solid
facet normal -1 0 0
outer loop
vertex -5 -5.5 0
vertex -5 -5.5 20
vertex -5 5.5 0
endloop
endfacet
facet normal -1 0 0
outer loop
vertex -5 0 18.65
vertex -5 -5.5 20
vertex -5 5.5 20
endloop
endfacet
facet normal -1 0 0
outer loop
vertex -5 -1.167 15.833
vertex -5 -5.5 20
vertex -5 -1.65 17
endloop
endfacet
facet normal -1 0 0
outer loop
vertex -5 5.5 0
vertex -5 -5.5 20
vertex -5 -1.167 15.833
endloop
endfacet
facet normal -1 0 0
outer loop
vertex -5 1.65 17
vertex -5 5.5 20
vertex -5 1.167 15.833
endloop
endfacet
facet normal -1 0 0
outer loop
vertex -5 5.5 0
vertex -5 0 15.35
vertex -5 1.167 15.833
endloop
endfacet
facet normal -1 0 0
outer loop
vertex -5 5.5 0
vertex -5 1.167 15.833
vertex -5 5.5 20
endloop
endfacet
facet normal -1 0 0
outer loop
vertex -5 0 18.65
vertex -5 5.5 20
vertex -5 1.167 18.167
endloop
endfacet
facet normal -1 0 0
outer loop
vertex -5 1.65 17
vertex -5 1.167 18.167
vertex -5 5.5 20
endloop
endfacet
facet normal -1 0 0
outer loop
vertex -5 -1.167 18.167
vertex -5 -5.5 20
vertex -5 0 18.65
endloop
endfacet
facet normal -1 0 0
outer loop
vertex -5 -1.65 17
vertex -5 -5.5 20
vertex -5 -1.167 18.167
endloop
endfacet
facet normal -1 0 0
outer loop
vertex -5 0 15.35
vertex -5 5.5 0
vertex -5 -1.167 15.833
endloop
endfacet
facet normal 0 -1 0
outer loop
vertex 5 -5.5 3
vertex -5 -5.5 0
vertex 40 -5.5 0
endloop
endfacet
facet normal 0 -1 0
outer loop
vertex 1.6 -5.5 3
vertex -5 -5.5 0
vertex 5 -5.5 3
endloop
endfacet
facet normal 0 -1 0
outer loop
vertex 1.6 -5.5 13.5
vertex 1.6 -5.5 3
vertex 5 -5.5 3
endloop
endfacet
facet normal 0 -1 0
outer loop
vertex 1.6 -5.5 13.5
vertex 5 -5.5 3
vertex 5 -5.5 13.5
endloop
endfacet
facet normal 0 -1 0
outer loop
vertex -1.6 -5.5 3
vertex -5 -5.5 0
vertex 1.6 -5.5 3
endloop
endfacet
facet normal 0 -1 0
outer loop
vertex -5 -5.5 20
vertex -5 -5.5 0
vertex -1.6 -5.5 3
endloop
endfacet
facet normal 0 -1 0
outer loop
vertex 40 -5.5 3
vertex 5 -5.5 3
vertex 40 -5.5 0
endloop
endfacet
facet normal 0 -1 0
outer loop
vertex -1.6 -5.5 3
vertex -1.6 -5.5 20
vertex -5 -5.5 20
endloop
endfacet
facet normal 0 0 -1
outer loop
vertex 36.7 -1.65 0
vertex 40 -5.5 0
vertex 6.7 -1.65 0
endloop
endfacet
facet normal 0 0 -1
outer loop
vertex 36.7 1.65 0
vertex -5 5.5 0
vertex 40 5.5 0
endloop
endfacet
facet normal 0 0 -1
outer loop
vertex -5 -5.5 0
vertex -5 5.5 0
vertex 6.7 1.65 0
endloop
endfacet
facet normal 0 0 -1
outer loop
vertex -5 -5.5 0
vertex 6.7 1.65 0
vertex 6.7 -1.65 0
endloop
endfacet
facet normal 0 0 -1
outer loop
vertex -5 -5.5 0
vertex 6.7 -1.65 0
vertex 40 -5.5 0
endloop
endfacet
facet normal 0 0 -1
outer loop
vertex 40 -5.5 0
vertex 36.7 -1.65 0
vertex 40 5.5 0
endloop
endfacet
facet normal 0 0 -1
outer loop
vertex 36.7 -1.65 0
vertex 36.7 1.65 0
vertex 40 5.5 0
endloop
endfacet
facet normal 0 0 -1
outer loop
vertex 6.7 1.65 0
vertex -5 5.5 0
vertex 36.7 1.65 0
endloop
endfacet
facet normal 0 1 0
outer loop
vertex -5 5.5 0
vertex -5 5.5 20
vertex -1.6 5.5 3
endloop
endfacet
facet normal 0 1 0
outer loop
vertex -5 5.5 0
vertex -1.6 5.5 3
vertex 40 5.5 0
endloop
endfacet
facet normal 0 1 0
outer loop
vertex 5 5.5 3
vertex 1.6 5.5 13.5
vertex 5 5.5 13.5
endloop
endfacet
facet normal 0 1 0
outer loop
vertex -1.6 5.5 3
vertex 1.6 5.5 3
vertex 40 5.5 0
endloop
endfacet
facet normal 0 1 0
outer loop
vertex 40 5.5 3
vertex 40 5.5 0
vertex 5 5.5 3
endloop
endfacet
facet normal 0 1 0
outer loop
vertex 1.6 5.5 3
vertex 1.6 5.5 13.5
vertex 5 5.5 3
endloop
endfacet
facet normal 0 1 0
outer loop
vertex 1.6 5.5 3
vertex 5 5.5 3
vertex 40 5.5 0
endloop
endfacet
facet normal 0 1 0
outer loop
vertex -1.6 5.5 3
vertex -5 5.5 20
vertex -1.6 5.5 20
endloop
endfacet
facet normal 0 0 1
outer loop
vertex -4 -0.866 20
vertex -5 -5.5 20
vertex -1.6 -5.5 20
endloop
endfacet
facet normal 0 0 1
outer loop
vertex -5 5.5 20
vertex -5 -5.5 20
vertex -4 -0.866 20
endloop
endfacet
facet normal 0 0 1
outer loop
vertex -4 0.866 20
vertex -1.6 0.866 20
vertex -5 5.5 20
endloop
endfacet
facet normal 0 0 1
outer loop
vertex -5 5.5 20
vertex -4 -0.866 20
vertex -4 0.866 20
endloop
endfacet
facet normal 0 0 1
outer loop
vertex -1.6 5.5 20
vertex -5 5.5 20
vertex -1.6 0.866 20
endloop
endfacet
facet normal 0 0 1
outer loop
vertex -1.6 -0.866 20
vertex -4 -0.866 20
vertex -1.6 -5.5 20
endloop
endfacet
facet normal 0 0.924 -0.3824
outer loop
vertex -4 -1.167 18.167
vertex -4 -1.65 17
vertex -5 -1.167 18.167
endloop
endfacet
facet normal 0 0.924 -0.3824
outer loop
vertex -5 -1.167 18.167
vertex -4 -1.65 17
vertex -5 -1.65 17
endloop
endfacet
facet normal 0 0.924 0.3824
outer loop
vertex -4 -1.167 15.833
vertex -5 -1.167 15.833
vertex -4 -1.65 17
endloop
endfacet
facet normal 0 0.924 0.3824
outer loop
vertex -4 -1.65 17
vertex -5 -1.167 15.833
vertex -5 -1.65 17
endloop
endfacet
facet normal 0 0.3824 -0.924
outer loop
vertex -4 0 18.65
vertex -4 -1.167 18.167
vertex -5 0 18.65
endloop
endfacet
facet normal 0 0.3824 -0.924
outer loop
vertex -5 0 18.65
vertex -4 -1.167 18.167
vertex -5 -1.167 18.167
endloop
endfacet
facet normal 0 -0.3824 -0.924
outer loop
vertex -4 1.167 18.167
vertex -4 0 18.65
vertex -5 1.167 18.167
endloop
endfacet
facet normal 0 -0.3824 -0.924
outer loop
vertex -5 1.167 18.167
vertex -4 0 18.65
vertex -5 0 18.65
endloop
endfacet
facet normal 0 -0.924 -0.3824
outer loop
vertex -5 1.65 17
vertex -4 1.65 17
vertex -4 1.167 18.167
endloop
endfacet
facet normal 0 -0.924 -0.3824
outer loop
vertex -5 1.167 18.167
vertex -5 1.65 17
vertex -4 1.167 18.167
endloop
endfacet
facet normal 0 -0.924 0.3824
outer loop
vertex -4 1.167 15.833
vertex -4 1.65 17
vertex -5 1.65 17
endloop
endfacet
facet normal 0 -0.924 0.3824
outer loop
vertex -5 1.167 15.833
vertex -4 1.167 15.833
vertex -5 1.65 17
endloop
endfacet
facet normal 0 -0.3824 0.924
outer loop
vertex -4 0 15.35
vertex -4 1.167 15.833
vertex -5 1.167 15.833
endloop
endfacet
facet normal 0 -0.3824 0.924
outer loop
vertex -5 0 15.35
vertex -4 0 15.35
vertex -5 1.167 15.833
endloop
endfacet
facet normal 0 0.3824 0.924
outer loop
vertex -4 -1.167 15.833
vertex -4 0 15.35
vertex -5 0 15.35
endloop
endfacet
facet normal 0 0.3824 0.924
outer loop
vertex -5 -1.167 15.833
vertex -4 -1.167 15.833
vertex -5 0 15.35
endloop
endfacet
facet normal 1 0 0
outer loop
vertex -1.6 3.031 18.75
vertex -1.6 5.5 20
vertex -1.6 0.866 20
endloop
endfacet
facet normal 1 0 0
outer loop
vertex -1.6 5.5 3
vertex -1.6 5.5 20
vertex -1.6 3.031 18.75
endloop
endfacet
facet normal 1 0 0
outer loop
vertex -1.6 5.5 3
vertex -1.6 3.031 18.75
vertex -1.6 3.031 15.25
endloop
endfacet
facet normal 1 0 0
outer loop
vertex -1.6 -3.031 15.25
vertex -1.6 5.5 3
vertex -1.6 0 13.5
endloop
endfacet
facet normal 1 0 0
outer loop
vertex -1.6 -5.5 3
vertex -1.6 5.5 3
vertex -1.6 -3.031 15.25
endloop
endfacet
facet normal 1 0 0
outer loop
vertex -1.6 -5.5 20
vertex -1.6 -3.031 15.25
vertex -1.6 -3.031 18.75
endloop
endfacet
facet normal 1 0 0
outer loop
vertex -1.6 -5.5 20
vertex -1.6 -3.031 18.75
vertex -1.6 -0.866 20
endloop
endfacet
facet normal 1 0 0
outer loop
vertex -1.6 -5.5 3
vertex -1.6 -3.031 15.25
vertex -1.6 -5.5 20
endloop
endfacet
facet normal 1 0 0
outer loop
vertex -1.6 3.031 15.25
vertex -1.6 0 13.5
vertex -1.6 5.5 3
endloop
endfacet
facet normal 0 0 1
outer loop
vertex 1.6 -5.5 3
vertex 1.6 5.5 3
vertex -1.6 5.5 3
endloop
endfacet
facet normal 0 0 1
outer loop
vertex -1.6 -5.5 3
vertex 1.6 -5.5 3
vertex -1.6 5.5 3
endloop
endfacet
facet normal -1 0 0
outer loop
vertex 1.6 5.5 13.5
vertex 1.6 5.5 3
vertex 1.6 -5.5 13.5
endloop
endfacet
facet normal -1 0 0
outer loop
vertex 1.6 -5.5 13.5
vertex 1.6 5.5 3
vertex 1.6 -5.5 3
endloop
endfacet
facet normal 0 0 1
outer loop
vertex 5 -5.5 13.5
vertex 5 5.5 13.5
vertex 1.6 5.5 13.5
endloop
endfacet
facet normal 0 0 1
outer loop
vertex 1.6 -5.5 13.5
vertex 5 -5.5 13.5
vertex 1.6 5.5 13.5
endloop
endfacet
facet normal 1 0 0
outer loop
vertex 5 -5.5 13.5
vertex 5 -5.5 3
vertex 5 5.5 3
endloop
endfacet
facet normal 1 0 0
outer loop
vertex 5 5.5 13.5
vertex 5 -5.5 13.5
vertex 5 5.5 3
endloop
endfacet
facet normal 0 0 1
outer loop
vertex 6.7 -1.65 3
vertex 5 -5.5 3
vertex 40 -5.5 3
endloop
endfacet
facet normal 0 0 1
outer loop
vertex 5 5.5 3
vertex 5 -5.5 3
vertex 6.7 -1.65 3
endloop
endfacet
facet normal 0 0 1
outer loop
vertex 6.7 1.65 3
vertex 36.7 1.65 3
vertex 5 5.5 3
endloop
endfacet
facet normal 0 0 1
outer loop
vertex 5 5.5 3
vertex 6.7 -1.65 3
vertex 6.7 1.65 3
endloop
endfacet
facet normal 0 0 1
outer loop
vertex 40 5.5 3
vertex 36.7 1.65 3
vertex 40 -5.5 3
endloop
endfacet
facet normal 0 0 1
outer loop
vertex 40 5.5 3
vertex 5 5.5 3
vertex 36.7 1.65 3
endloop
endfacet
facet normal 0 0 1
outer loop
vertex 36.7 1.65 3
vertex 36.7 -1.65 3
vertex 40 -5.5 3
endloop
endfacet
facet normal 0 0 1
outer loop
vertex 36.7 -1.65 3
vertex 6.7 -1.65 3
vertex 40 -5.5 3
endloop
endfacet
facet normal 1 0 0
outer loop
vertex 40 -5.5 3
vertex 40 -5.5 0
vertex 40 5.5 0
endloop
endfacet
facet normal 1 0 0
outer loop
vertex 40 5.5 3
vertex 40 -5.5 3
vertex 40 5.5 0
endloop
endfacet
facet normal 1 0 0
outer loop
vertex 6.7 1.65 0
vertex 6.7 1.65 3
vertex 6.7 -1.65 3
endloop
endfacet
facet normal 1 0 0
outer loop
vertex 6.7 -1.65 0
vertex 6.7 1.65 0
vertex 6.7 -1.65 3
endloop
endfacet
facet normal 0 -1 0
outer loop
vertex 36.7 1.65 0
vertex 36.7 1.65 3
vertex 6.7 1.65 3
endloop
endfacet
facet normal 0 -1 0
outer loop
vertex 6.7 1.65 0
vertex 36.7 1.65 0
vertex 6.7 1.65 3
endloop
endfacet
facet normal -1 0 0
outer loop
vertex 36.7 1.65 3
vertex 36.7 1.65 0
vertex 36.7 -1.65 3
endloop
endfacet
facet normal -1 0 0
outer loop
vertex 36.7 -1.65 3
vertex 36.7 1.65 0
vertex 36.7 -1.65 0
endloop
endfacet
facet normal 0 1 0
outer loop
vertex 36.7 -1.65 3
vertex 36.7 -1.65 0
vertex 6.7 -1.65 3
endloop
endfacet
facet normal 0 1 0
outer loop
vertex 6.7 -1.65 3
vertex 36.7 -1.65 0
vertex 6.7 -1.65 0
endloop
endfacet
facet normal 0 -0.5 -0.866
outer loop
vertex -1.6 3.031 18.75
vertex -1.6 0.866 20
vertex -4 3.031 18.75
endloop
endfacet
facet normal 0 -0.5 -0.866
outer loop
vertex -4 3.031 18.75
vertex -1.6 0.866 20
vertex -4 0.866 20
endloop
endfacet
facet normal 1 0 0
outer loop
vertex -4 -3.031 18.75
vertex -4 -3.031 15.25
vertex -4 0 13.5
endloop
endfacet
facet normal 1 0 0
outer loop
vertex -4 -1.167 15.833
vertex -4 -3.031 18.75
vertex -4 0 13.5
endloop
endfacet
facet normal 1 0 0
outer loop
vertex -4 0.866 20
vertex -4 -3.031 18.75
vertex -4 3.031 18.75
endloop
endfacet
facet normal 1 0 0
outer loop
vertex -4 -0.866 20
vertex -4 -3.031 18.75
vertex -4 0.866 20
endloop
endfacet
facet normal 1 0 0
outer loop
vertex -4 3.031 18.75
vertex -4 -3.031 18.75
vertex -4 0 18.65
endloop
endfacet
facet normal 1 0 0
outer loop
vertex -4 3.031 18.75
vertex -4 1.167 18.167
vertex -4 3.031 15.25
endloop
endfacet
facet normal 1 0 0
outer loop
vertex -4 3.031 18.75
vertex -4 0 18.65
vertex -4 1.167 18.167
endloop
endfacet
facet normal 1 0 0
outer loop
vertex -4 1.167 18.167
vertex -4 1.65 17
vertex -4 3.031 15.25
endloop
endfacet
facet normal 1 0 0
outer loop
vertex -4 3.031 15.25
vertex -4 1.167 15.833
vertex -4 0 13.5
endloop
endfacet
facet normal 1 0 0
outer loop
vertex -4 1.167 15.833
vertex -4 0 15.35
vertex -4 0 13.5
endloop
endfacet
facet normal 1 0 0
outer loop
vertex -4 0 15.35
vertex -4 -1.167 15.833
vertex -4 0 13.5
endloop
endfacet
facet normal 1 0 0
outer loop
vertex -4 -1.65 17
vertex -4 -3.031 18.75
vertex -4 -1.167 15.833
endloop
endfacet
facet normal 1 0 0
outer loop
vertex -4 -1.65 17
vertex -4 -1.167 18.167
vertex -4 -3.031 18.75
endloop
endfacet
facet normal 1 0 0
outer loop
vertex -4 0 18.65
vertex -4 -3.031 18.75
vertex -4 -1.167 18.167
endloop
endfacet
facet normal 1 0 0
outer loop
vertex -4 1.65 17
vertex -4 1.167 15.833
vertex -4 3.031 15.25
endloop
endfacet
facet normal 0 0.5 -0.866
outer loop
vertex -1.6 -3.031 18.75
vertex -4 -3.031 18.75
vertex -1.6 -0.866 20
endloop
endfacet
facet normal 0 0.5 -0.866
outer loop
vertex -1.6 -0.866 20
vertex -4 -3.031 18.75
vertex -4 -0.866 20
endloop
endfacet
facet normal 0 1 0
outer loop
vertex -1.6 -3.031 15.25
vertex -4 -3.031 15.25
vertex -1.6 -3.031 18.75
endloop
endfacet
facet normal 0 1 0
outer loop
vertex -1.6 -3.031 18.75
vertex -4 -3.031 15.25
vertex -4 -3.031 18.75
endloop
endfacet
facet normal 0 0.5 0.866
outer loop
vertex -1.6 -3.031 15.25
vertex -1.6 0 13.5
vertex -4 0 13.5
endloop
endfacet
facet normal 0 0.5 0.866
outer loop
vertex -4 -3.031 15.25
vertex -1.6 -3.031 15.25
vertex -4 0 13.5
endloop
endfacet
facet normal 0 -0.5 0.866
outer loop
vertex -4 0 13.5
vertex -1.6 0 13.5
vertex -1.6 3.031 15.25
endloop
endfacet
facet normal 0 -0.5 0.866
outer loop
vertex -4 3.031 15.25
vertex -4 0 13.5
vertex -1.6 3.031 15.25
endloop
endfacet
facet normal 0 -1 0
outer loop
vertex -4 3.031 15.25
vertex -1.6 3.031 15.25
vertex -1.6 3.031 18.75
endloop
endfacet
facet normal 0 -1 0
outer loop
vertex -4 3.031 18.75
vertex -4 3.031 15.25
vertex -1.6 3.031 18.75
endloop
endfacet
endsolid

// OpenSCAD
// Robot DC-motor: sensor keyesIR - holder

// Vertical part.
h_vert = 40;
w_vert = 11;
d_vert =  3;

// Internal diameter of nut.
id_nut = 3.3;

// Out diameter of nut.
od_nut = 7;

// Height of nut.
h_nut = 4;

// Length and diameter of screws.
len_screw = 20;
dia_screw = 3.3;

// Horizontal part.
h_horiz = 10;
w_horiz = 11;
d_horiz =  20;

// Width of chassis.
w_chassis = 3.2;

// Vertical hole.
h_vhole = h_vert - 2*id_nut - (h_horiz - w_chassis)/2;
w_vhole = id_nut;
d_vhole =  10;

// Width of chassis.
w_chassis = 3.2;

// Horizontal hole.
h_hhole = w_chassis;
w_hhole = w_horiz+1;
d_hhole = d_horiz;

// Block of nut.
h_nut_hole = (h_horiz - w_chassis)/2 + 1;
w_nut_hole = w_horiz+1;
d_nut_hole = od_nut;


module solid_part() {
  union() {
// Vertical part.
    translate([h_vert/2, 0, d_vert/2])
      cube([h_vert, w_vert, d_vert], center = true);
    
// Horizontal part.
    translate([0, 0, d_horiz/2])
      cube([h_horiz, w_horiz, d_horiz], center = true);
  }    
}    

module  holes() {
    
  union() {    
// Vertical hole.
    translate([h_vhole/2 + id_nut + (h_horiz - w_chassis)/2, 0, d_vhole/2 - 0.5])  
      #cube([h_vhole, w_vhole, d_vhole], center = true);
    
// Horizontal hole.
    translate([0, 0, d_horiz/2 + d_vert])
      cube([h_hhole, w_hhole, d_hhole], center = true);  

// Block of nut.
    translate([(h_horiz - w_chassis)/2, 0, d_horiz/2 + d_nut_hole])
      #cube([h_nut_hole, w_nut_hole, d_nut_hole], center = true);  

// Screw hole.
    translate([0, 0, d_horiz/2 + d_nut_hole])
      rotate(a=[0,90,0])      
        cylinder(h = len_screw, r1 = dia_screw/2, r2 = dia_screw/2, $fn = 8, center = true);      
        

// Nut hole.
    translate([-h_nut/2, 0, d_horiz/2 + d_nut_hole])
      rotate(a=[ 0, 90, 0])      
        #cylinder(h = h_nut, r1 = od_nut/2, r2 = od_nut/2, $fn = 6, center = true);      
  }      

}

difference() {
  solid_part();
  holes();  
}
